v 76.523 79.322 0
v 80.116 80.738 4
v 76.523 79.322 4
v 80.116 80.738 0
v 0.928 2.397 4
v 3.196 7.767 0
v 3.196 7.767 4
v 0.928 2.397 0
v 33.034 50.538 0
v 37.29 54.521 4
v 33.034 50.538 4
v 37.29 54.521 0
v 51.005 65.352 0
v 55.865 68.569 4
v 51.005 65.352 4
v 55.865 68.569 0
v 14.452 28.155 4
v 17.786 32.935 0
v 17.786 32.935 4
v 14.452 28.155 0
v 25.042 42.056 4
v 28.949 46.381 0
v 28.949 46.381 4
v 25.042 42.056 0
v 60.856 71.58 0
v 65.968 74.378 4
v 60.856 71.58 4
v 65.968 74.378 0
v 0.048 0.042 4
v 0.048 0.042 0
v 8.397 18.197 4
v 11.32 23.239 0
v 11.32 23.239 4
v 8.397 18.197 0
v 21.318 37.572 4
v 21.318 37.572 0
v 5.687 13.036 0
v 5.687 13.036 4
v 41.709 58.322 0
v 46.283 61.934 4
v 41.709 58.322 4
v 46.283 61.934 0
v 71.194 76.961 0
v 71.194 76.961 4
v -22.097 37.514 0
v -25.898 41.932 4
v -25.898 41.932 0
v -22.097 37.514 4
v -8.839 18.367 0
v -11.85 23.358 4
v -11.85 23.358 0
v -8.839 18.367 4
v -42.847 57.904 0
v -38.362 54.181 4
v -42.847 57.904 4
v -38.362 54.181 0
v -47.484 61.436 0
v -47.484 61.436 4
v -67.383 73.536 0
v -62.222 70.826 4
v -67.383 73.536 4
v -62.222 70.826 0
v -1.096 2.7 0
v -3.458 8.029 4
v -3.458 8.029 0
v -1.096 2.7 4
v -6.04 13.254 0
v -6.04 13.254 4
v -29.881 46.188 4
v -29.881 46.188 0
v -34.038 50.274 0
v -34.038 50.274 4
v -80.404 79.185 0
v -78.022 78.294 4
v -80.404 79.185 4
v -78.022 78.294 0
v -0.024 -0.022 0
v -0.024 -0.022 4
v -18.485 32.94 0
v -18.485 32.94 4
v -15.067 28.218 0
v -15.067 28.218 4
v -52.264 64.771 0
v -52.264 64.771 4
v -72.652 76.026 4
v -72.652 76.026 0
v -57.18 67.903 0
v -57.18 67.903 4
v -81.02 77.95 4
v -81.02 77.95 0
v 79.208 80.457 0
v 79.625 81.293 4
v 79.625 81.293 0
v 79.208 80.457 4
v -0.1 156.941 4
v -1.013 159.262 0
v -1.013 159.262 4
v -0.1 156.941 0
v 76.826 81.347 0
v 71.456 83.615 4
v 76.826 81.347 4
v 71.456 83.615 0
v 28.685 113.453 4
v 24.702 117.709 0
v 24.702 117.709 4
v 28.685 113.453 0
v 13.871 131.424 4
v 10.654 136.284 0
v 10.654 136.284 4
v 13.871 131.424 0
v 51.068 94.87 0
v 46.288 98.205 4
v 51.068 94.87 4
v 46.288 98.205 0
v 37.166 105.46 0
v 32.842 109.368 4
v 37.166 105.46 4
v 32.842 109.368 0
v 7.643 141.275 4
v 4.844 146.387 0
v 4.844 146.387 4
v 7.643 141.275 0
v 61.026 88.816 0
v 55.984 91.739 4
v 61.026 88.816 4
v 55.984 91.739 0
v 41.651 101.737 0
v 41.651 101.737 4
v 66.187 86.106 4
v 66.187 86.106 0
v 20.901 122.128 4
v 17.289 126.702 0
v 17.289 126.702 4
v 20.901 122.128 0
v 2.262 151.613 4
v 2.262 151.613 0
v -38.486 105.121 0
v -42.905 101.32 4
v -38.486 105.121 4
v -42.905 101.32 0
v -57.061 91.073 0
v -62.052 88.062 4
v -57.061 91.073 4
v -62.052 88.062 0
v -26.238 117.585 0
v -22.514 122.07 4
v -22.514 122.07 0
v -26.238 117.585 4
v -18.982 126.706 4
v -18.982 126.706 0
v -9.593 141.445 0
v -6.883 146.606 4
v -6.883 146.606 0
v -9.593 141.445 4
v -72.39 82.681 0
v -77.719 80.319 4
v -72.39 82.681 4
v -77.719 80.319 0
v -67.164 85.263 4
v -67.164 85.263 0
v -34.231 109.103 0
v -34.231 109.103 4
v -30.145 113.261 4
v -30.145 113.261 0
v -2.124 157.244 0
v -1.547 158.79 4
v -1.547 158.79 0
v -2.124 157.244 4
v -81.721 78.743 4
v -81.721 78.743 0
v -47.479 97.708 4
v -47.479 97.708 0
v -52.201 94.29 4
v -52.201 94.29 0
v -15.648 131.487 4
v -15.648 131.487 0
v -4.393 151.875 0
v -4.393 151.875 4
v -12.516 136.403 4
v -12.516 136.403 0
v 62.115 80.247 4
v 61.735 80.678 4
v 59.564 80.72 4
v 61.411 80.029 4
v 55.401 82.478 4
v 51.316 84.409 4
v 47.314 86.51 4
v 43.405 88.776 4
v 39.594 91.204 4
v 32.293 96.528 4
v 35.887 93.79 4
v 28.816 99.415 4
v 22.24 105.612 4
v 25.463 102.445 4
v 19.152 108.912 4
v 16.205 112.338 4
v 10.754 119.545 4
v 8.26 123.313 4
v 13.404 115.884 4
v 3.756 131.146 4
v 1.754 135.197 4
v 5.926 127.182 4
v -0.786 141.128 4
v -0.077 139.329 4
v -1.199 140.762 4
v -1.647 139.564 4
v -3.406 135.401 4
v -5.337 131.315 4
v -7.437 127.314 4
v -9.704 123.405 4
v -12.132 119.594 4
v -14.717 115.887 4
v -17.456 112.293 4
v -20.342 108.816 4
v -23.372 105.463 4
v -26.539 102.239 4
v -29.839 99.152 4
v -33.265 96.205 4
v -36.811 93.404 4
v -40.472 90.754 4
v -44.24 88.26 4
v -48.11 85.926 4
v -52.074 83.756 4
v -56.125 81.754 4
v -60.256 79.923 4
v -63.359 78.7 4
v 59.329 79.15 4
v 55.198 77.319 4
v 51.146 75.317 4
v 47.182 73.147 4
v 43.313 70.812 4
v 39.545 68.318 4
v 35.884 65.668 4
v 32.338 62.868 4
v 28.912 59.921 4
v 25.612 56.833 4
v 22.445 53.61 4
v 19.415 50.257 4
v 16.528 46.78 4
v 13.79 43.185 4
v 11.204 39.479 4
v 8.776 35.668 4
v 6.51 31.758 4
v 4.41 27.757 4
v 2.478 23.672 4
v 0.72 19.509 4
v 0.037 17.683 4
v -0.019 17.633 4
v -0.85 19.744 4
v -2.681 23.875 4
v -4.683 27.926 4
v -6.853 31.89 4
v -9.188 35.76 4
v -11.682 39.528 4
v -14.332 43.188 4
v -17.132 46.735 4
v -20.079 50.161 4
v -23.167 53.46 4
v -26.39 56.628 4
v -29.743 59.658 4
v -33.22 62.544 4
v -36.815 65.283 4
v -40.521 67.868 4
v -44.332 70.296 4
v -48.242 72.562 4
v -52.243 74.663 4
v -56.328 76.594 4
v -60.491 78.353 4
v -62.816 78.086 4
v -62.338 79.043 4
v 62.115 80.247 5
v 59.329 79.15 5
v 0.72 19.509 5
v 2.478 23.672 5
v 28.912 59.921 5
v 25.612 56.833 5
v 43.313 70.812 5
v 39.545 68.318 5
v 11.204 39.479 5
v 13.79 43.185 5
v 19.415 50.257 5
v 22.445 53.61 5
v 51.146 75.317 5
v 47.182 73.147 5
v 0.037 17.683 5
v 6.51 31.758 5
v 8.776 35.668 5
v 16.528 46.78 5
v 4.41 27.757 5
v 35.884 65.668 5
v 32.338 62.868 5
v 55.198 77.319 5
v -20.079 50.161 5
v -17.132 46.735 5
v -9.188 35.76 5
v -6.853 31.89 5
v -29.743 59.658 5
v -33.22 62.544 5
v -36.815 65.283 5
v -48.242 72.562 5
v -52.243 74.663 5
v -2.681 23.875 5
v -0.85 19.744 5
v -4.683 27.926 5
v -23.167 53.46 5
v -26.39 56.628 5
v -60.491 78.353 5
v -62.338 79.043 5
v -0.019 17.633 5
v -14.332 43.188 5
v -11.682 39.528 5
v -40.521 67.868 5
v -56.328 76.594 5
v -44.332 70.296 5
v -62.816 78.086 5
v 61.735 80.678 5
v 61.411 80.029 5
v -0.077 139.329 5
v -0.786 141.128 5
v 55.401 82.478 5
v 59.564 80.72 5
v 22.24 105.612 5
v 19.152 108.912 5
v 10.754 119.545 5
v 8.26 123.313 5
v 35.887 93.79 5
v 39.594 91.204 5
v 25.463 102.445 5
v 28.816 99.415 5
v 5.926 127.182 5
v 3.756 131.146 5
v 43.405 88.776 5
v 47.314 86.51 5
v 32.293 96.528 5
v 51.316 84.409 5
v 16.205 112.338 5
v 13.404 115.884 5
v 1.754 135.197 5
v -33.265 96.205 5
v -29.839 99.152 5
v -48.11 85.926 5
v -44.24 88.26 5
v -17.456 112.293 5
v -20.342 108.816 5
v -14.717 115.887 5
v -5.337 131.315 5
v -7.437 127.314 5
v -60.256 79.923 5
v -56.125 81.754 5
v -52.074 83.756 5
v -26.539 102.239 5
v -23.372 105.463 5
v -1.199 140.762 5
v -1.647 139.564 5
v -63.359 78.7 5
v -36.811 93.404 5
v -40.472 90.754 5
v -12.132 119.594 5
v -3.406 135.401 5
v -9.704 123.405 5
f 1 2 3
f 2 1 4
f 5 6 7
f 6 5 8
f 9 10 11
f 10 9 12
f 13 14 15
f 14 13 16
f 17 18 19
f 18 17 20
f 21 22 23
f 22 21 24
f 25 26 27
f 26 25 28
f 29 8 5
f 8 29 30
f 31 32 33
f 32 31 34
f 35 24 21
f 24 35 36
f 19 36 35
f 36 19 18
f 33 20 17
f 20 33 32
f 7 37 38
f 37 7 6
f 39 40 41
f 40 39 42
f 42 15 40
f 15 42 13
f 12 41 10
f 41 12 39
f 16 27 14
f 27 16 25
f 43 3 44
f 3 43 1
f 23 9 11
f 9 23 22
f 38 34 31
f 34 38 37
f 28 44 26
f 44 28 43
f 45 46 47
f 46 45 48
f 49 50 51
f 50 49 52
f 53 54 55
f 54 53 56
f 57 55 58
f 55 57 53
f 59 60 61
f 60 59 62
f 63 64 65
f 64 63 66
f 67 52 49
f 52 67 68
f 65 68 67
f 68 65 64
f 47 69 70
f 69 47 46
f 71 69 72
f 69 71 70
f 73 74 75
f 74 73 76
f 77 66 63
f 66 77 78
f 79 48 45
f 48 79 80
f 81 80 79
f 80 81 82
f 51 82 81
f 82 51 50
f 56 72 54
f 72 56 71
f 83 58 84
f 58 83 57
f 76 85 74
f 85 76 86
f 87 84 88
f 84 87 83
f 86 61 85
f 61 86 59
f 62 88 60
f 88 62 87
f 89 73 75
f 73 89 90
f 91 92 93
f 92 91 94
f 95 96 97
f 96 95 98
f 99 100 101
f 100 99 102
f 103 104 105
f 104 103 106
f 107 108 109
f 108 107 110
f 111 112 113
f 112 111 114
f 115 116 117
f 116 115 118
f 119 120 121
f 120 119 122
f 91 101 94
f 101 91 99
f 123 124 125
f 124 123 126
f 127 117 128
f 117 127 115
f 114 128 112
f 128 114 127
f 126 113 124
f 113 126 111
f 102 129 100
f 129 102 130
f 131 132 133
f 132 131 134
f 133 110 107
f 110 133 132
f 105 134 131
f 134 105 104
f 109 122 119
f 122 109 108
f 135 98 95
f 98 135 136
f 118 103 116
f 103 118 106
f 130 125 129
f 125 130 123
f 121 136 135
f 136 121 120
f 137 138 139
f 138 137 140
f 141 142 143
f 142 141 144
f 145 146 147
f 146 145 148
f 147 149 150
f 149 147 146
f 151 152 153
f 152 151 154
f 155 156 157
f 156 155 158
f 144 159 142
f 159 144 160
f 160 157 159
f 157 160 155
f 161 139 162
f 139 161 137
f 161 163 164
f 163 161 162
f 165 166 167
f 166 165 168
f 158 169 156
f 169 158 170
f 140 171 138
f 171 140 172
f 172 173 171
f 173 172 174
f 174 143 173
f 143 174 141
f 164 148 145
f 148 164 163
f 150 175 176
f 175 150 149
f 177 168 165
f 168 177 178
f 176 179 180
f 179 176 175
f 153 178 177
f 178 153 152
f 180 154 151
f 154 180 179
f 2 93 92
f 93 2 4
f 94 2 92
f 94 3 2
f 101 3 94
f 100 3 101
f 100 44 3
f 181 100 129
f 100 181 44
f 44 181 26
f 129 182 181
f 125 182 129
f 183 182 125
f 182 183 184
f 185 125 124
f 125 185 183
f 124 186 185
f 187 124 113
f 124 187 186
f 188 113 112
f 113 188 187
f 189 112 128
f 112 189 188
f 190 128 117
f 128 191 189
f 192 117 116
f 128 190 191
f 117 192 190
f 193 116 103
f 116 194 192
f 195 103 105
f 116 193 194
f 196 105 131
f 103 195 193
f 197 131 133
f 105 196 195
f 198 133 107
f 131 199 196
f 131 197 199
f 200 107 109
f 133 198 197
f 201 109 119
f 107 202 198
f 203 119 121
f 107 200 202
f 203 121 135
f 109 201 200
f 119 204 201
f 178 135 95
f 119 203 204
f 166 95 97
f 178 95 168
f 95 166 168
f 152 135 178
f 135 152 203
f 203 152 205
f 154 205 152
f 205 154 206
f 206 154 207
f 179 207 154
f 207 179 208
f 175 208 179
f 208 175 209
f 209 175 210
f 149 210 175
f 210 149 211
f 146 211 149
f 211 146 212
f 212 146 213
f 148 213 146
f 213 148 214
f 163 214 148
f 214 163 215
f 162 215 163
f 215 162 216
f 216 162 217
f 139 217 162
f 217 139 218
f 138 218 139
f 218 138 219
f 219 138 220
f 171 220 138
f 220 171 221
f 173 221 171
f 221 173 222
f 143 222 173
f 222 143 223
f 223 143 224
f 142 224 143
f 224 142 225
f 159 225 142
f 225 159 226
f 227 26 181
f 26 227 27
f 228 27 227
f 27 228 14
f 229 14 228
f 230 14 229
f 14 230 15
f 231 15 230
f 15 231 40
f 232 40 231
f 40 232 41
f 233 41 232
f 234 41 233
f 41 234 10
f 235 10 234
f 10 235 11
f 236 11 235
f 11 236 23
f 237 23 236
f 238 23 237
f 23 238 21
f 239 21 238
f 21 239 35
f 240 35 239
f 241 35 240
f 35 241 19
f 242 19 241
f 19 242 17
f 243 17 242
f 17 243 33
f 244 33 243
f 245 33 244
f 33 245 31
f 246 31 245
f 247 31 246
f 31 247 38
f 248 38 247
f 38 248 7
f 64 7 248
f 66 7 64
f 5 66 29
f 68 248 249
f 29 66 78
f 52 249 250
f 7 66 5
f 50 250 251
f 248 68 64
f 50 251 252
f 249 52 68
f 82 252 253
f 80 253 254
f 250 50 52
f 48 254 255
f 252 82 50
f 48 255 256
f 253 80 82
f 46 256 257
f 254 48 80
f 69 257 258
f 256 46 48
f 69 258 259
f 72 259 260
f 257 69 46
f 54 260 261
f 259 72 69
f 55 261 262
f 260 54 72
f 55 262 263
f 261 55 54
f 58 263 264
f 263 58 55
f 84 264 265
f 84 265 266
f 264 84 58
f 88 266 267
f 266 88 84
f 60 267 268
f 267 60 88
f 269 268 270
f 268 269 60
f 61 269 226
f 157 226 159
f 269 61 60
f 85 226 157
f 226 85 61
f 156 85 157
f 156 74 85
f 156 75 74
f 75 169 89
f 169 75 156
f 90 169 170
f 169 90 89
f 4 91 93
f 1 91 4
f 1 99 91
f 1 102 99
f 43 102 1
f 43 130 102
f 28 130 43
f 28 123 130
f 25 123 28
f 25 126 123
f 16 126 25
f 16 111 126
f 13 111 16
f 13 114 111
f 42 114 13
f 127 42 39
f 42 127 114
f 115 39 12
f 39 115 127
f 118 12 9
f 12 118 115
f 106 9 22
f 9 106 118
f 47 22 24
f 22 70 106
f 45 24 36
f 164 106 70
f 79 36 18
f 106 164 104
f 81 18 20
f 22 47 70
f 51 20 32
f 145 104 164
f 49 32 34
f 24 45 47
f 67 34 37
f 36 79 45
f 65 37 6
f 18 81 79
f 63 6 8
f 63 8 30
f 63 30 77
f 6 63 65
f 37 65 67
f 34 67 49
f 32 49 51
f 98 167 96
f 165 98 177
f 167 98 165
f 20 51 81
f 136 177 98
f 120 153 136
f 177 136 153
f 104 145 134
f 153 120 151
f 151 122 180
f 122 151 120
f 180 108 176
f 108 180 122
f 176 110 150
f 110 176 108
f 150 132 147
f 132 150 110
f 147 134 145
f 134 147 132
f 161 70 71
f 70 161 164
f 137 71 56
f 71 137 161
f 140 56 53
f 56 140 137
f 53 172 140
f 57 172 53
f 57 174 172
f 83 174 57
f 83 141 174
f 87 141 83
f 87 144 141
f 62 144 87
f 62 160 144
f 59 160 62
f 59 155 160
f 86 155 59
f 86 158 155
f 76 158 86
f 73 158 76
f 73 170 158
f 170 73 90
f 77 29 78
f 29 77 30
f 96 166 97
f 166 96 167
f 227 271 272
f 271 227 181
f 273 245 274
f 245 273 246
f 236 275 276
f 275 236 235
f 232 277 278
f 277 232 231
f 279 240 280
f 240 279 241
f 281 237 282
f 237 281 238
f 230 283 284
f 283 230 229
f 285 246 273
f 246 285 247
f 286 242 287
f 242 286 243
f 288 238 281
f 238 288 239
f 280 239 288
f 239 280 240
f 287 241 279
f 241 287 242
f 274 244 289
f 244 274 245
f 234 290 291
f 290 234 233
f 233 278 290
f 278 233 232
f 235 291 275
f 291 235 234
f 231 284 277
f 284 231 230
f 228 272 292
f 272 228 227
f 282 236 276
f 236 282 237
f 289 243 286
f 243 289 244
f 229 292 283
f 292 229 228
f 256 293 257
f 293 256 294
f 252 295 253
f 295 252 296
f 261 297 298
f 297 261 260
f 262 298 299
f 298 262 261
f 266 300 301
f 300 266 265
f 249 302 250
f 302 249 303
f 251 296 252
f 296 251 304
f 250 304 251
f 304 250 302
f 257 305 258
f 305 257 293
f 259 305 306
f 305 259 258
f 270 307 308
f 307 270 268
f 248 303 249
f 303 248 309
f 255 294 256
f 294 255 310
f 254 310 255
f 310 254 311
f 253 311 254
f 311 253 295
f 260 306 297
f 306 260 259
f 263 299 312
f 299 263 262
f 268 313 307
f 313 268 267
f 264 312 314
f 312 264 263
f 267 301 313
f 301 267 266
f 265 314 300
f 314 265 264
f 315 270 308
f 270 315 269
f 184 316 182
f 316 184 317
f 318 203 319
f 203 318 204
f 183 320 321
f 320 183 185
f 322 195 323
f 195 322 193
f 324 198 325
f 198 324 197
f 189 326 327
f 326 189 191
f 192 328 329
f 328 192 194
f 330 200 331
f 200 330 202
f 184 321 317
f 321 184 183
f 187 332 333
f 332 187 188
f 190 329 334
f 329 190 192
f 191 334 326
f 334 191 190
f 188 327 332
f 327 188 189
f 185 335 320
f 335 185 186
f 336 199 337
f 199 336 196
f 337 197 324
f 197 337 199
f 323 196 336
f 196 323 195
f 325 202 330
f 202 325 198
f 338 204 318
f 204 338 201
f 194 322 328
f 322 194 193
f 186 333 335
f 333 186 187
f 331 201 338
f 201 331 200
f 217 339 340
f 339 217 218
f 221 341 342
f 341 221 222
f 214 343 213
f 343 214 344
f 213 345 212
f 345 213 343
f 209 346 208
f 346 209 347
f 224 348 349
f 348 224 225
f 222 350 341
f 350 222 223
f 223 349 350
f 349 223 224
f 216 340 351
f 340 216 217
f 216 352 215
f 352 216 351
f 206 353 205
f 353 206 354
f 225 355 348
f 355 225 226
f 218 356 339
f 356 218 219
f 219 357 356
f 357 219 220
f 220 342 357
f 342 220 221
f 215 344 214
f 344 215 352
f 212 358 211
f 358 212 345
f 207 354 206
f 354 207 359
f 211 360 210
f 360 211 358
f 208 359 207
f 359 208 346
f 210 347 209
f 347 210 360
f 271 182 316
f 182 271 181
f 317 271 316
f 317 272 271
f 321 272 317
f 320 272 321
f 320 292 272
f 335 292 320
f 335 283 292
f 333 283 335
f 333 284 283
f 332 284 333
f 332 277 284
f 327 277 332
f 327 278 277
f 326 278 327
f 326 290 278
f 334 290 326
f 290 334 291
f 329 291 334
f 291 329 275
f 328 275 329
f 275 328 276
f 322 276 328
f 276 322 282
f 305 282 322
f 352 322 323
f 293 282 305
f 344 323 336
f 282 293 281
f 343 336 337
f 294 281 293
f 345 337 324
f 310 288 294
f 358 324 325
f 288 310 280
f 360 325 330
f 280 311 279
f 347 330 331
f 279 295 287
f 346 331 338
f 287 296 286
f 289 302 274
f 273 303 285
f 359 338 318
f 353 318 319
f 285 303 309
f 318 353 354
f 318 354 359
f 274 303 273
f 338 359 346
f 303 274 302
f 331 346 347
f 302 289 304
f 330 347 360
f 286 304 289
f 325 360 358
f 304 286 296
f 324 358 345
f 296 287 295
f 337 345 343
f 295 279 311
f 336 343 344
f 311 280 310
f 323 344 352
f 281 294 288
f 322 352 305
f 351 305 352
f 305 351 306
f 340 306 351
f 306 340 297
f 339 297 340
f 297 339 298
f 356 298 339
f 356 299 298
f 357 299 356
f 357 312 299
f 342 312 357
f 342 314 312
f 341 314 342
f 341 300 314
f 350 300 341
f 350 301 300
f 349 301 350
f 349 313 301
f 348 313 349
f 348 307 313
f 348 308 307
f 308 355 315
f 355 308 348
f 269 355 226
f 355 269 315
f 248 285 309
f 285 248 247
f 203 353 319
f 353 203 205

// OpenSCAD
radius=107.890845;

module part() {
  translate([0,0,-0.3])
    cylinder(r=radius, h=6, $fn=150);
}

delta=radius-71/2;

module leaf() {
  intersection() {
   translate([0,delta,0])
    part();
   translate([0,-delta,0])
    part();
  }
}

module fourleafs() {
translate([80,0,0])
  leaf();
translate([-71/2,0,0])
 rotate([0,0,90])
  leaf();
translate([80,80+71/2,0])
 rotate([0,0,90])
  leaf();
translate([-71/2,80+71/2,0])
  leaf();
}


module base() {
 rotate([0,0,20])
  translate([-7,0,0])
   cube([95,93,4]);
}

module quad() {
  difference() {
  base();
  fourleafs();
  }
}

sf=1.2898;
scale([sf,sf,1])
 rotate([0,0,21.5])
  quad();

translate([0,17.65,3])
 scale([1,1,0.5])
  rotate([0,0,21.5])
   quad();
